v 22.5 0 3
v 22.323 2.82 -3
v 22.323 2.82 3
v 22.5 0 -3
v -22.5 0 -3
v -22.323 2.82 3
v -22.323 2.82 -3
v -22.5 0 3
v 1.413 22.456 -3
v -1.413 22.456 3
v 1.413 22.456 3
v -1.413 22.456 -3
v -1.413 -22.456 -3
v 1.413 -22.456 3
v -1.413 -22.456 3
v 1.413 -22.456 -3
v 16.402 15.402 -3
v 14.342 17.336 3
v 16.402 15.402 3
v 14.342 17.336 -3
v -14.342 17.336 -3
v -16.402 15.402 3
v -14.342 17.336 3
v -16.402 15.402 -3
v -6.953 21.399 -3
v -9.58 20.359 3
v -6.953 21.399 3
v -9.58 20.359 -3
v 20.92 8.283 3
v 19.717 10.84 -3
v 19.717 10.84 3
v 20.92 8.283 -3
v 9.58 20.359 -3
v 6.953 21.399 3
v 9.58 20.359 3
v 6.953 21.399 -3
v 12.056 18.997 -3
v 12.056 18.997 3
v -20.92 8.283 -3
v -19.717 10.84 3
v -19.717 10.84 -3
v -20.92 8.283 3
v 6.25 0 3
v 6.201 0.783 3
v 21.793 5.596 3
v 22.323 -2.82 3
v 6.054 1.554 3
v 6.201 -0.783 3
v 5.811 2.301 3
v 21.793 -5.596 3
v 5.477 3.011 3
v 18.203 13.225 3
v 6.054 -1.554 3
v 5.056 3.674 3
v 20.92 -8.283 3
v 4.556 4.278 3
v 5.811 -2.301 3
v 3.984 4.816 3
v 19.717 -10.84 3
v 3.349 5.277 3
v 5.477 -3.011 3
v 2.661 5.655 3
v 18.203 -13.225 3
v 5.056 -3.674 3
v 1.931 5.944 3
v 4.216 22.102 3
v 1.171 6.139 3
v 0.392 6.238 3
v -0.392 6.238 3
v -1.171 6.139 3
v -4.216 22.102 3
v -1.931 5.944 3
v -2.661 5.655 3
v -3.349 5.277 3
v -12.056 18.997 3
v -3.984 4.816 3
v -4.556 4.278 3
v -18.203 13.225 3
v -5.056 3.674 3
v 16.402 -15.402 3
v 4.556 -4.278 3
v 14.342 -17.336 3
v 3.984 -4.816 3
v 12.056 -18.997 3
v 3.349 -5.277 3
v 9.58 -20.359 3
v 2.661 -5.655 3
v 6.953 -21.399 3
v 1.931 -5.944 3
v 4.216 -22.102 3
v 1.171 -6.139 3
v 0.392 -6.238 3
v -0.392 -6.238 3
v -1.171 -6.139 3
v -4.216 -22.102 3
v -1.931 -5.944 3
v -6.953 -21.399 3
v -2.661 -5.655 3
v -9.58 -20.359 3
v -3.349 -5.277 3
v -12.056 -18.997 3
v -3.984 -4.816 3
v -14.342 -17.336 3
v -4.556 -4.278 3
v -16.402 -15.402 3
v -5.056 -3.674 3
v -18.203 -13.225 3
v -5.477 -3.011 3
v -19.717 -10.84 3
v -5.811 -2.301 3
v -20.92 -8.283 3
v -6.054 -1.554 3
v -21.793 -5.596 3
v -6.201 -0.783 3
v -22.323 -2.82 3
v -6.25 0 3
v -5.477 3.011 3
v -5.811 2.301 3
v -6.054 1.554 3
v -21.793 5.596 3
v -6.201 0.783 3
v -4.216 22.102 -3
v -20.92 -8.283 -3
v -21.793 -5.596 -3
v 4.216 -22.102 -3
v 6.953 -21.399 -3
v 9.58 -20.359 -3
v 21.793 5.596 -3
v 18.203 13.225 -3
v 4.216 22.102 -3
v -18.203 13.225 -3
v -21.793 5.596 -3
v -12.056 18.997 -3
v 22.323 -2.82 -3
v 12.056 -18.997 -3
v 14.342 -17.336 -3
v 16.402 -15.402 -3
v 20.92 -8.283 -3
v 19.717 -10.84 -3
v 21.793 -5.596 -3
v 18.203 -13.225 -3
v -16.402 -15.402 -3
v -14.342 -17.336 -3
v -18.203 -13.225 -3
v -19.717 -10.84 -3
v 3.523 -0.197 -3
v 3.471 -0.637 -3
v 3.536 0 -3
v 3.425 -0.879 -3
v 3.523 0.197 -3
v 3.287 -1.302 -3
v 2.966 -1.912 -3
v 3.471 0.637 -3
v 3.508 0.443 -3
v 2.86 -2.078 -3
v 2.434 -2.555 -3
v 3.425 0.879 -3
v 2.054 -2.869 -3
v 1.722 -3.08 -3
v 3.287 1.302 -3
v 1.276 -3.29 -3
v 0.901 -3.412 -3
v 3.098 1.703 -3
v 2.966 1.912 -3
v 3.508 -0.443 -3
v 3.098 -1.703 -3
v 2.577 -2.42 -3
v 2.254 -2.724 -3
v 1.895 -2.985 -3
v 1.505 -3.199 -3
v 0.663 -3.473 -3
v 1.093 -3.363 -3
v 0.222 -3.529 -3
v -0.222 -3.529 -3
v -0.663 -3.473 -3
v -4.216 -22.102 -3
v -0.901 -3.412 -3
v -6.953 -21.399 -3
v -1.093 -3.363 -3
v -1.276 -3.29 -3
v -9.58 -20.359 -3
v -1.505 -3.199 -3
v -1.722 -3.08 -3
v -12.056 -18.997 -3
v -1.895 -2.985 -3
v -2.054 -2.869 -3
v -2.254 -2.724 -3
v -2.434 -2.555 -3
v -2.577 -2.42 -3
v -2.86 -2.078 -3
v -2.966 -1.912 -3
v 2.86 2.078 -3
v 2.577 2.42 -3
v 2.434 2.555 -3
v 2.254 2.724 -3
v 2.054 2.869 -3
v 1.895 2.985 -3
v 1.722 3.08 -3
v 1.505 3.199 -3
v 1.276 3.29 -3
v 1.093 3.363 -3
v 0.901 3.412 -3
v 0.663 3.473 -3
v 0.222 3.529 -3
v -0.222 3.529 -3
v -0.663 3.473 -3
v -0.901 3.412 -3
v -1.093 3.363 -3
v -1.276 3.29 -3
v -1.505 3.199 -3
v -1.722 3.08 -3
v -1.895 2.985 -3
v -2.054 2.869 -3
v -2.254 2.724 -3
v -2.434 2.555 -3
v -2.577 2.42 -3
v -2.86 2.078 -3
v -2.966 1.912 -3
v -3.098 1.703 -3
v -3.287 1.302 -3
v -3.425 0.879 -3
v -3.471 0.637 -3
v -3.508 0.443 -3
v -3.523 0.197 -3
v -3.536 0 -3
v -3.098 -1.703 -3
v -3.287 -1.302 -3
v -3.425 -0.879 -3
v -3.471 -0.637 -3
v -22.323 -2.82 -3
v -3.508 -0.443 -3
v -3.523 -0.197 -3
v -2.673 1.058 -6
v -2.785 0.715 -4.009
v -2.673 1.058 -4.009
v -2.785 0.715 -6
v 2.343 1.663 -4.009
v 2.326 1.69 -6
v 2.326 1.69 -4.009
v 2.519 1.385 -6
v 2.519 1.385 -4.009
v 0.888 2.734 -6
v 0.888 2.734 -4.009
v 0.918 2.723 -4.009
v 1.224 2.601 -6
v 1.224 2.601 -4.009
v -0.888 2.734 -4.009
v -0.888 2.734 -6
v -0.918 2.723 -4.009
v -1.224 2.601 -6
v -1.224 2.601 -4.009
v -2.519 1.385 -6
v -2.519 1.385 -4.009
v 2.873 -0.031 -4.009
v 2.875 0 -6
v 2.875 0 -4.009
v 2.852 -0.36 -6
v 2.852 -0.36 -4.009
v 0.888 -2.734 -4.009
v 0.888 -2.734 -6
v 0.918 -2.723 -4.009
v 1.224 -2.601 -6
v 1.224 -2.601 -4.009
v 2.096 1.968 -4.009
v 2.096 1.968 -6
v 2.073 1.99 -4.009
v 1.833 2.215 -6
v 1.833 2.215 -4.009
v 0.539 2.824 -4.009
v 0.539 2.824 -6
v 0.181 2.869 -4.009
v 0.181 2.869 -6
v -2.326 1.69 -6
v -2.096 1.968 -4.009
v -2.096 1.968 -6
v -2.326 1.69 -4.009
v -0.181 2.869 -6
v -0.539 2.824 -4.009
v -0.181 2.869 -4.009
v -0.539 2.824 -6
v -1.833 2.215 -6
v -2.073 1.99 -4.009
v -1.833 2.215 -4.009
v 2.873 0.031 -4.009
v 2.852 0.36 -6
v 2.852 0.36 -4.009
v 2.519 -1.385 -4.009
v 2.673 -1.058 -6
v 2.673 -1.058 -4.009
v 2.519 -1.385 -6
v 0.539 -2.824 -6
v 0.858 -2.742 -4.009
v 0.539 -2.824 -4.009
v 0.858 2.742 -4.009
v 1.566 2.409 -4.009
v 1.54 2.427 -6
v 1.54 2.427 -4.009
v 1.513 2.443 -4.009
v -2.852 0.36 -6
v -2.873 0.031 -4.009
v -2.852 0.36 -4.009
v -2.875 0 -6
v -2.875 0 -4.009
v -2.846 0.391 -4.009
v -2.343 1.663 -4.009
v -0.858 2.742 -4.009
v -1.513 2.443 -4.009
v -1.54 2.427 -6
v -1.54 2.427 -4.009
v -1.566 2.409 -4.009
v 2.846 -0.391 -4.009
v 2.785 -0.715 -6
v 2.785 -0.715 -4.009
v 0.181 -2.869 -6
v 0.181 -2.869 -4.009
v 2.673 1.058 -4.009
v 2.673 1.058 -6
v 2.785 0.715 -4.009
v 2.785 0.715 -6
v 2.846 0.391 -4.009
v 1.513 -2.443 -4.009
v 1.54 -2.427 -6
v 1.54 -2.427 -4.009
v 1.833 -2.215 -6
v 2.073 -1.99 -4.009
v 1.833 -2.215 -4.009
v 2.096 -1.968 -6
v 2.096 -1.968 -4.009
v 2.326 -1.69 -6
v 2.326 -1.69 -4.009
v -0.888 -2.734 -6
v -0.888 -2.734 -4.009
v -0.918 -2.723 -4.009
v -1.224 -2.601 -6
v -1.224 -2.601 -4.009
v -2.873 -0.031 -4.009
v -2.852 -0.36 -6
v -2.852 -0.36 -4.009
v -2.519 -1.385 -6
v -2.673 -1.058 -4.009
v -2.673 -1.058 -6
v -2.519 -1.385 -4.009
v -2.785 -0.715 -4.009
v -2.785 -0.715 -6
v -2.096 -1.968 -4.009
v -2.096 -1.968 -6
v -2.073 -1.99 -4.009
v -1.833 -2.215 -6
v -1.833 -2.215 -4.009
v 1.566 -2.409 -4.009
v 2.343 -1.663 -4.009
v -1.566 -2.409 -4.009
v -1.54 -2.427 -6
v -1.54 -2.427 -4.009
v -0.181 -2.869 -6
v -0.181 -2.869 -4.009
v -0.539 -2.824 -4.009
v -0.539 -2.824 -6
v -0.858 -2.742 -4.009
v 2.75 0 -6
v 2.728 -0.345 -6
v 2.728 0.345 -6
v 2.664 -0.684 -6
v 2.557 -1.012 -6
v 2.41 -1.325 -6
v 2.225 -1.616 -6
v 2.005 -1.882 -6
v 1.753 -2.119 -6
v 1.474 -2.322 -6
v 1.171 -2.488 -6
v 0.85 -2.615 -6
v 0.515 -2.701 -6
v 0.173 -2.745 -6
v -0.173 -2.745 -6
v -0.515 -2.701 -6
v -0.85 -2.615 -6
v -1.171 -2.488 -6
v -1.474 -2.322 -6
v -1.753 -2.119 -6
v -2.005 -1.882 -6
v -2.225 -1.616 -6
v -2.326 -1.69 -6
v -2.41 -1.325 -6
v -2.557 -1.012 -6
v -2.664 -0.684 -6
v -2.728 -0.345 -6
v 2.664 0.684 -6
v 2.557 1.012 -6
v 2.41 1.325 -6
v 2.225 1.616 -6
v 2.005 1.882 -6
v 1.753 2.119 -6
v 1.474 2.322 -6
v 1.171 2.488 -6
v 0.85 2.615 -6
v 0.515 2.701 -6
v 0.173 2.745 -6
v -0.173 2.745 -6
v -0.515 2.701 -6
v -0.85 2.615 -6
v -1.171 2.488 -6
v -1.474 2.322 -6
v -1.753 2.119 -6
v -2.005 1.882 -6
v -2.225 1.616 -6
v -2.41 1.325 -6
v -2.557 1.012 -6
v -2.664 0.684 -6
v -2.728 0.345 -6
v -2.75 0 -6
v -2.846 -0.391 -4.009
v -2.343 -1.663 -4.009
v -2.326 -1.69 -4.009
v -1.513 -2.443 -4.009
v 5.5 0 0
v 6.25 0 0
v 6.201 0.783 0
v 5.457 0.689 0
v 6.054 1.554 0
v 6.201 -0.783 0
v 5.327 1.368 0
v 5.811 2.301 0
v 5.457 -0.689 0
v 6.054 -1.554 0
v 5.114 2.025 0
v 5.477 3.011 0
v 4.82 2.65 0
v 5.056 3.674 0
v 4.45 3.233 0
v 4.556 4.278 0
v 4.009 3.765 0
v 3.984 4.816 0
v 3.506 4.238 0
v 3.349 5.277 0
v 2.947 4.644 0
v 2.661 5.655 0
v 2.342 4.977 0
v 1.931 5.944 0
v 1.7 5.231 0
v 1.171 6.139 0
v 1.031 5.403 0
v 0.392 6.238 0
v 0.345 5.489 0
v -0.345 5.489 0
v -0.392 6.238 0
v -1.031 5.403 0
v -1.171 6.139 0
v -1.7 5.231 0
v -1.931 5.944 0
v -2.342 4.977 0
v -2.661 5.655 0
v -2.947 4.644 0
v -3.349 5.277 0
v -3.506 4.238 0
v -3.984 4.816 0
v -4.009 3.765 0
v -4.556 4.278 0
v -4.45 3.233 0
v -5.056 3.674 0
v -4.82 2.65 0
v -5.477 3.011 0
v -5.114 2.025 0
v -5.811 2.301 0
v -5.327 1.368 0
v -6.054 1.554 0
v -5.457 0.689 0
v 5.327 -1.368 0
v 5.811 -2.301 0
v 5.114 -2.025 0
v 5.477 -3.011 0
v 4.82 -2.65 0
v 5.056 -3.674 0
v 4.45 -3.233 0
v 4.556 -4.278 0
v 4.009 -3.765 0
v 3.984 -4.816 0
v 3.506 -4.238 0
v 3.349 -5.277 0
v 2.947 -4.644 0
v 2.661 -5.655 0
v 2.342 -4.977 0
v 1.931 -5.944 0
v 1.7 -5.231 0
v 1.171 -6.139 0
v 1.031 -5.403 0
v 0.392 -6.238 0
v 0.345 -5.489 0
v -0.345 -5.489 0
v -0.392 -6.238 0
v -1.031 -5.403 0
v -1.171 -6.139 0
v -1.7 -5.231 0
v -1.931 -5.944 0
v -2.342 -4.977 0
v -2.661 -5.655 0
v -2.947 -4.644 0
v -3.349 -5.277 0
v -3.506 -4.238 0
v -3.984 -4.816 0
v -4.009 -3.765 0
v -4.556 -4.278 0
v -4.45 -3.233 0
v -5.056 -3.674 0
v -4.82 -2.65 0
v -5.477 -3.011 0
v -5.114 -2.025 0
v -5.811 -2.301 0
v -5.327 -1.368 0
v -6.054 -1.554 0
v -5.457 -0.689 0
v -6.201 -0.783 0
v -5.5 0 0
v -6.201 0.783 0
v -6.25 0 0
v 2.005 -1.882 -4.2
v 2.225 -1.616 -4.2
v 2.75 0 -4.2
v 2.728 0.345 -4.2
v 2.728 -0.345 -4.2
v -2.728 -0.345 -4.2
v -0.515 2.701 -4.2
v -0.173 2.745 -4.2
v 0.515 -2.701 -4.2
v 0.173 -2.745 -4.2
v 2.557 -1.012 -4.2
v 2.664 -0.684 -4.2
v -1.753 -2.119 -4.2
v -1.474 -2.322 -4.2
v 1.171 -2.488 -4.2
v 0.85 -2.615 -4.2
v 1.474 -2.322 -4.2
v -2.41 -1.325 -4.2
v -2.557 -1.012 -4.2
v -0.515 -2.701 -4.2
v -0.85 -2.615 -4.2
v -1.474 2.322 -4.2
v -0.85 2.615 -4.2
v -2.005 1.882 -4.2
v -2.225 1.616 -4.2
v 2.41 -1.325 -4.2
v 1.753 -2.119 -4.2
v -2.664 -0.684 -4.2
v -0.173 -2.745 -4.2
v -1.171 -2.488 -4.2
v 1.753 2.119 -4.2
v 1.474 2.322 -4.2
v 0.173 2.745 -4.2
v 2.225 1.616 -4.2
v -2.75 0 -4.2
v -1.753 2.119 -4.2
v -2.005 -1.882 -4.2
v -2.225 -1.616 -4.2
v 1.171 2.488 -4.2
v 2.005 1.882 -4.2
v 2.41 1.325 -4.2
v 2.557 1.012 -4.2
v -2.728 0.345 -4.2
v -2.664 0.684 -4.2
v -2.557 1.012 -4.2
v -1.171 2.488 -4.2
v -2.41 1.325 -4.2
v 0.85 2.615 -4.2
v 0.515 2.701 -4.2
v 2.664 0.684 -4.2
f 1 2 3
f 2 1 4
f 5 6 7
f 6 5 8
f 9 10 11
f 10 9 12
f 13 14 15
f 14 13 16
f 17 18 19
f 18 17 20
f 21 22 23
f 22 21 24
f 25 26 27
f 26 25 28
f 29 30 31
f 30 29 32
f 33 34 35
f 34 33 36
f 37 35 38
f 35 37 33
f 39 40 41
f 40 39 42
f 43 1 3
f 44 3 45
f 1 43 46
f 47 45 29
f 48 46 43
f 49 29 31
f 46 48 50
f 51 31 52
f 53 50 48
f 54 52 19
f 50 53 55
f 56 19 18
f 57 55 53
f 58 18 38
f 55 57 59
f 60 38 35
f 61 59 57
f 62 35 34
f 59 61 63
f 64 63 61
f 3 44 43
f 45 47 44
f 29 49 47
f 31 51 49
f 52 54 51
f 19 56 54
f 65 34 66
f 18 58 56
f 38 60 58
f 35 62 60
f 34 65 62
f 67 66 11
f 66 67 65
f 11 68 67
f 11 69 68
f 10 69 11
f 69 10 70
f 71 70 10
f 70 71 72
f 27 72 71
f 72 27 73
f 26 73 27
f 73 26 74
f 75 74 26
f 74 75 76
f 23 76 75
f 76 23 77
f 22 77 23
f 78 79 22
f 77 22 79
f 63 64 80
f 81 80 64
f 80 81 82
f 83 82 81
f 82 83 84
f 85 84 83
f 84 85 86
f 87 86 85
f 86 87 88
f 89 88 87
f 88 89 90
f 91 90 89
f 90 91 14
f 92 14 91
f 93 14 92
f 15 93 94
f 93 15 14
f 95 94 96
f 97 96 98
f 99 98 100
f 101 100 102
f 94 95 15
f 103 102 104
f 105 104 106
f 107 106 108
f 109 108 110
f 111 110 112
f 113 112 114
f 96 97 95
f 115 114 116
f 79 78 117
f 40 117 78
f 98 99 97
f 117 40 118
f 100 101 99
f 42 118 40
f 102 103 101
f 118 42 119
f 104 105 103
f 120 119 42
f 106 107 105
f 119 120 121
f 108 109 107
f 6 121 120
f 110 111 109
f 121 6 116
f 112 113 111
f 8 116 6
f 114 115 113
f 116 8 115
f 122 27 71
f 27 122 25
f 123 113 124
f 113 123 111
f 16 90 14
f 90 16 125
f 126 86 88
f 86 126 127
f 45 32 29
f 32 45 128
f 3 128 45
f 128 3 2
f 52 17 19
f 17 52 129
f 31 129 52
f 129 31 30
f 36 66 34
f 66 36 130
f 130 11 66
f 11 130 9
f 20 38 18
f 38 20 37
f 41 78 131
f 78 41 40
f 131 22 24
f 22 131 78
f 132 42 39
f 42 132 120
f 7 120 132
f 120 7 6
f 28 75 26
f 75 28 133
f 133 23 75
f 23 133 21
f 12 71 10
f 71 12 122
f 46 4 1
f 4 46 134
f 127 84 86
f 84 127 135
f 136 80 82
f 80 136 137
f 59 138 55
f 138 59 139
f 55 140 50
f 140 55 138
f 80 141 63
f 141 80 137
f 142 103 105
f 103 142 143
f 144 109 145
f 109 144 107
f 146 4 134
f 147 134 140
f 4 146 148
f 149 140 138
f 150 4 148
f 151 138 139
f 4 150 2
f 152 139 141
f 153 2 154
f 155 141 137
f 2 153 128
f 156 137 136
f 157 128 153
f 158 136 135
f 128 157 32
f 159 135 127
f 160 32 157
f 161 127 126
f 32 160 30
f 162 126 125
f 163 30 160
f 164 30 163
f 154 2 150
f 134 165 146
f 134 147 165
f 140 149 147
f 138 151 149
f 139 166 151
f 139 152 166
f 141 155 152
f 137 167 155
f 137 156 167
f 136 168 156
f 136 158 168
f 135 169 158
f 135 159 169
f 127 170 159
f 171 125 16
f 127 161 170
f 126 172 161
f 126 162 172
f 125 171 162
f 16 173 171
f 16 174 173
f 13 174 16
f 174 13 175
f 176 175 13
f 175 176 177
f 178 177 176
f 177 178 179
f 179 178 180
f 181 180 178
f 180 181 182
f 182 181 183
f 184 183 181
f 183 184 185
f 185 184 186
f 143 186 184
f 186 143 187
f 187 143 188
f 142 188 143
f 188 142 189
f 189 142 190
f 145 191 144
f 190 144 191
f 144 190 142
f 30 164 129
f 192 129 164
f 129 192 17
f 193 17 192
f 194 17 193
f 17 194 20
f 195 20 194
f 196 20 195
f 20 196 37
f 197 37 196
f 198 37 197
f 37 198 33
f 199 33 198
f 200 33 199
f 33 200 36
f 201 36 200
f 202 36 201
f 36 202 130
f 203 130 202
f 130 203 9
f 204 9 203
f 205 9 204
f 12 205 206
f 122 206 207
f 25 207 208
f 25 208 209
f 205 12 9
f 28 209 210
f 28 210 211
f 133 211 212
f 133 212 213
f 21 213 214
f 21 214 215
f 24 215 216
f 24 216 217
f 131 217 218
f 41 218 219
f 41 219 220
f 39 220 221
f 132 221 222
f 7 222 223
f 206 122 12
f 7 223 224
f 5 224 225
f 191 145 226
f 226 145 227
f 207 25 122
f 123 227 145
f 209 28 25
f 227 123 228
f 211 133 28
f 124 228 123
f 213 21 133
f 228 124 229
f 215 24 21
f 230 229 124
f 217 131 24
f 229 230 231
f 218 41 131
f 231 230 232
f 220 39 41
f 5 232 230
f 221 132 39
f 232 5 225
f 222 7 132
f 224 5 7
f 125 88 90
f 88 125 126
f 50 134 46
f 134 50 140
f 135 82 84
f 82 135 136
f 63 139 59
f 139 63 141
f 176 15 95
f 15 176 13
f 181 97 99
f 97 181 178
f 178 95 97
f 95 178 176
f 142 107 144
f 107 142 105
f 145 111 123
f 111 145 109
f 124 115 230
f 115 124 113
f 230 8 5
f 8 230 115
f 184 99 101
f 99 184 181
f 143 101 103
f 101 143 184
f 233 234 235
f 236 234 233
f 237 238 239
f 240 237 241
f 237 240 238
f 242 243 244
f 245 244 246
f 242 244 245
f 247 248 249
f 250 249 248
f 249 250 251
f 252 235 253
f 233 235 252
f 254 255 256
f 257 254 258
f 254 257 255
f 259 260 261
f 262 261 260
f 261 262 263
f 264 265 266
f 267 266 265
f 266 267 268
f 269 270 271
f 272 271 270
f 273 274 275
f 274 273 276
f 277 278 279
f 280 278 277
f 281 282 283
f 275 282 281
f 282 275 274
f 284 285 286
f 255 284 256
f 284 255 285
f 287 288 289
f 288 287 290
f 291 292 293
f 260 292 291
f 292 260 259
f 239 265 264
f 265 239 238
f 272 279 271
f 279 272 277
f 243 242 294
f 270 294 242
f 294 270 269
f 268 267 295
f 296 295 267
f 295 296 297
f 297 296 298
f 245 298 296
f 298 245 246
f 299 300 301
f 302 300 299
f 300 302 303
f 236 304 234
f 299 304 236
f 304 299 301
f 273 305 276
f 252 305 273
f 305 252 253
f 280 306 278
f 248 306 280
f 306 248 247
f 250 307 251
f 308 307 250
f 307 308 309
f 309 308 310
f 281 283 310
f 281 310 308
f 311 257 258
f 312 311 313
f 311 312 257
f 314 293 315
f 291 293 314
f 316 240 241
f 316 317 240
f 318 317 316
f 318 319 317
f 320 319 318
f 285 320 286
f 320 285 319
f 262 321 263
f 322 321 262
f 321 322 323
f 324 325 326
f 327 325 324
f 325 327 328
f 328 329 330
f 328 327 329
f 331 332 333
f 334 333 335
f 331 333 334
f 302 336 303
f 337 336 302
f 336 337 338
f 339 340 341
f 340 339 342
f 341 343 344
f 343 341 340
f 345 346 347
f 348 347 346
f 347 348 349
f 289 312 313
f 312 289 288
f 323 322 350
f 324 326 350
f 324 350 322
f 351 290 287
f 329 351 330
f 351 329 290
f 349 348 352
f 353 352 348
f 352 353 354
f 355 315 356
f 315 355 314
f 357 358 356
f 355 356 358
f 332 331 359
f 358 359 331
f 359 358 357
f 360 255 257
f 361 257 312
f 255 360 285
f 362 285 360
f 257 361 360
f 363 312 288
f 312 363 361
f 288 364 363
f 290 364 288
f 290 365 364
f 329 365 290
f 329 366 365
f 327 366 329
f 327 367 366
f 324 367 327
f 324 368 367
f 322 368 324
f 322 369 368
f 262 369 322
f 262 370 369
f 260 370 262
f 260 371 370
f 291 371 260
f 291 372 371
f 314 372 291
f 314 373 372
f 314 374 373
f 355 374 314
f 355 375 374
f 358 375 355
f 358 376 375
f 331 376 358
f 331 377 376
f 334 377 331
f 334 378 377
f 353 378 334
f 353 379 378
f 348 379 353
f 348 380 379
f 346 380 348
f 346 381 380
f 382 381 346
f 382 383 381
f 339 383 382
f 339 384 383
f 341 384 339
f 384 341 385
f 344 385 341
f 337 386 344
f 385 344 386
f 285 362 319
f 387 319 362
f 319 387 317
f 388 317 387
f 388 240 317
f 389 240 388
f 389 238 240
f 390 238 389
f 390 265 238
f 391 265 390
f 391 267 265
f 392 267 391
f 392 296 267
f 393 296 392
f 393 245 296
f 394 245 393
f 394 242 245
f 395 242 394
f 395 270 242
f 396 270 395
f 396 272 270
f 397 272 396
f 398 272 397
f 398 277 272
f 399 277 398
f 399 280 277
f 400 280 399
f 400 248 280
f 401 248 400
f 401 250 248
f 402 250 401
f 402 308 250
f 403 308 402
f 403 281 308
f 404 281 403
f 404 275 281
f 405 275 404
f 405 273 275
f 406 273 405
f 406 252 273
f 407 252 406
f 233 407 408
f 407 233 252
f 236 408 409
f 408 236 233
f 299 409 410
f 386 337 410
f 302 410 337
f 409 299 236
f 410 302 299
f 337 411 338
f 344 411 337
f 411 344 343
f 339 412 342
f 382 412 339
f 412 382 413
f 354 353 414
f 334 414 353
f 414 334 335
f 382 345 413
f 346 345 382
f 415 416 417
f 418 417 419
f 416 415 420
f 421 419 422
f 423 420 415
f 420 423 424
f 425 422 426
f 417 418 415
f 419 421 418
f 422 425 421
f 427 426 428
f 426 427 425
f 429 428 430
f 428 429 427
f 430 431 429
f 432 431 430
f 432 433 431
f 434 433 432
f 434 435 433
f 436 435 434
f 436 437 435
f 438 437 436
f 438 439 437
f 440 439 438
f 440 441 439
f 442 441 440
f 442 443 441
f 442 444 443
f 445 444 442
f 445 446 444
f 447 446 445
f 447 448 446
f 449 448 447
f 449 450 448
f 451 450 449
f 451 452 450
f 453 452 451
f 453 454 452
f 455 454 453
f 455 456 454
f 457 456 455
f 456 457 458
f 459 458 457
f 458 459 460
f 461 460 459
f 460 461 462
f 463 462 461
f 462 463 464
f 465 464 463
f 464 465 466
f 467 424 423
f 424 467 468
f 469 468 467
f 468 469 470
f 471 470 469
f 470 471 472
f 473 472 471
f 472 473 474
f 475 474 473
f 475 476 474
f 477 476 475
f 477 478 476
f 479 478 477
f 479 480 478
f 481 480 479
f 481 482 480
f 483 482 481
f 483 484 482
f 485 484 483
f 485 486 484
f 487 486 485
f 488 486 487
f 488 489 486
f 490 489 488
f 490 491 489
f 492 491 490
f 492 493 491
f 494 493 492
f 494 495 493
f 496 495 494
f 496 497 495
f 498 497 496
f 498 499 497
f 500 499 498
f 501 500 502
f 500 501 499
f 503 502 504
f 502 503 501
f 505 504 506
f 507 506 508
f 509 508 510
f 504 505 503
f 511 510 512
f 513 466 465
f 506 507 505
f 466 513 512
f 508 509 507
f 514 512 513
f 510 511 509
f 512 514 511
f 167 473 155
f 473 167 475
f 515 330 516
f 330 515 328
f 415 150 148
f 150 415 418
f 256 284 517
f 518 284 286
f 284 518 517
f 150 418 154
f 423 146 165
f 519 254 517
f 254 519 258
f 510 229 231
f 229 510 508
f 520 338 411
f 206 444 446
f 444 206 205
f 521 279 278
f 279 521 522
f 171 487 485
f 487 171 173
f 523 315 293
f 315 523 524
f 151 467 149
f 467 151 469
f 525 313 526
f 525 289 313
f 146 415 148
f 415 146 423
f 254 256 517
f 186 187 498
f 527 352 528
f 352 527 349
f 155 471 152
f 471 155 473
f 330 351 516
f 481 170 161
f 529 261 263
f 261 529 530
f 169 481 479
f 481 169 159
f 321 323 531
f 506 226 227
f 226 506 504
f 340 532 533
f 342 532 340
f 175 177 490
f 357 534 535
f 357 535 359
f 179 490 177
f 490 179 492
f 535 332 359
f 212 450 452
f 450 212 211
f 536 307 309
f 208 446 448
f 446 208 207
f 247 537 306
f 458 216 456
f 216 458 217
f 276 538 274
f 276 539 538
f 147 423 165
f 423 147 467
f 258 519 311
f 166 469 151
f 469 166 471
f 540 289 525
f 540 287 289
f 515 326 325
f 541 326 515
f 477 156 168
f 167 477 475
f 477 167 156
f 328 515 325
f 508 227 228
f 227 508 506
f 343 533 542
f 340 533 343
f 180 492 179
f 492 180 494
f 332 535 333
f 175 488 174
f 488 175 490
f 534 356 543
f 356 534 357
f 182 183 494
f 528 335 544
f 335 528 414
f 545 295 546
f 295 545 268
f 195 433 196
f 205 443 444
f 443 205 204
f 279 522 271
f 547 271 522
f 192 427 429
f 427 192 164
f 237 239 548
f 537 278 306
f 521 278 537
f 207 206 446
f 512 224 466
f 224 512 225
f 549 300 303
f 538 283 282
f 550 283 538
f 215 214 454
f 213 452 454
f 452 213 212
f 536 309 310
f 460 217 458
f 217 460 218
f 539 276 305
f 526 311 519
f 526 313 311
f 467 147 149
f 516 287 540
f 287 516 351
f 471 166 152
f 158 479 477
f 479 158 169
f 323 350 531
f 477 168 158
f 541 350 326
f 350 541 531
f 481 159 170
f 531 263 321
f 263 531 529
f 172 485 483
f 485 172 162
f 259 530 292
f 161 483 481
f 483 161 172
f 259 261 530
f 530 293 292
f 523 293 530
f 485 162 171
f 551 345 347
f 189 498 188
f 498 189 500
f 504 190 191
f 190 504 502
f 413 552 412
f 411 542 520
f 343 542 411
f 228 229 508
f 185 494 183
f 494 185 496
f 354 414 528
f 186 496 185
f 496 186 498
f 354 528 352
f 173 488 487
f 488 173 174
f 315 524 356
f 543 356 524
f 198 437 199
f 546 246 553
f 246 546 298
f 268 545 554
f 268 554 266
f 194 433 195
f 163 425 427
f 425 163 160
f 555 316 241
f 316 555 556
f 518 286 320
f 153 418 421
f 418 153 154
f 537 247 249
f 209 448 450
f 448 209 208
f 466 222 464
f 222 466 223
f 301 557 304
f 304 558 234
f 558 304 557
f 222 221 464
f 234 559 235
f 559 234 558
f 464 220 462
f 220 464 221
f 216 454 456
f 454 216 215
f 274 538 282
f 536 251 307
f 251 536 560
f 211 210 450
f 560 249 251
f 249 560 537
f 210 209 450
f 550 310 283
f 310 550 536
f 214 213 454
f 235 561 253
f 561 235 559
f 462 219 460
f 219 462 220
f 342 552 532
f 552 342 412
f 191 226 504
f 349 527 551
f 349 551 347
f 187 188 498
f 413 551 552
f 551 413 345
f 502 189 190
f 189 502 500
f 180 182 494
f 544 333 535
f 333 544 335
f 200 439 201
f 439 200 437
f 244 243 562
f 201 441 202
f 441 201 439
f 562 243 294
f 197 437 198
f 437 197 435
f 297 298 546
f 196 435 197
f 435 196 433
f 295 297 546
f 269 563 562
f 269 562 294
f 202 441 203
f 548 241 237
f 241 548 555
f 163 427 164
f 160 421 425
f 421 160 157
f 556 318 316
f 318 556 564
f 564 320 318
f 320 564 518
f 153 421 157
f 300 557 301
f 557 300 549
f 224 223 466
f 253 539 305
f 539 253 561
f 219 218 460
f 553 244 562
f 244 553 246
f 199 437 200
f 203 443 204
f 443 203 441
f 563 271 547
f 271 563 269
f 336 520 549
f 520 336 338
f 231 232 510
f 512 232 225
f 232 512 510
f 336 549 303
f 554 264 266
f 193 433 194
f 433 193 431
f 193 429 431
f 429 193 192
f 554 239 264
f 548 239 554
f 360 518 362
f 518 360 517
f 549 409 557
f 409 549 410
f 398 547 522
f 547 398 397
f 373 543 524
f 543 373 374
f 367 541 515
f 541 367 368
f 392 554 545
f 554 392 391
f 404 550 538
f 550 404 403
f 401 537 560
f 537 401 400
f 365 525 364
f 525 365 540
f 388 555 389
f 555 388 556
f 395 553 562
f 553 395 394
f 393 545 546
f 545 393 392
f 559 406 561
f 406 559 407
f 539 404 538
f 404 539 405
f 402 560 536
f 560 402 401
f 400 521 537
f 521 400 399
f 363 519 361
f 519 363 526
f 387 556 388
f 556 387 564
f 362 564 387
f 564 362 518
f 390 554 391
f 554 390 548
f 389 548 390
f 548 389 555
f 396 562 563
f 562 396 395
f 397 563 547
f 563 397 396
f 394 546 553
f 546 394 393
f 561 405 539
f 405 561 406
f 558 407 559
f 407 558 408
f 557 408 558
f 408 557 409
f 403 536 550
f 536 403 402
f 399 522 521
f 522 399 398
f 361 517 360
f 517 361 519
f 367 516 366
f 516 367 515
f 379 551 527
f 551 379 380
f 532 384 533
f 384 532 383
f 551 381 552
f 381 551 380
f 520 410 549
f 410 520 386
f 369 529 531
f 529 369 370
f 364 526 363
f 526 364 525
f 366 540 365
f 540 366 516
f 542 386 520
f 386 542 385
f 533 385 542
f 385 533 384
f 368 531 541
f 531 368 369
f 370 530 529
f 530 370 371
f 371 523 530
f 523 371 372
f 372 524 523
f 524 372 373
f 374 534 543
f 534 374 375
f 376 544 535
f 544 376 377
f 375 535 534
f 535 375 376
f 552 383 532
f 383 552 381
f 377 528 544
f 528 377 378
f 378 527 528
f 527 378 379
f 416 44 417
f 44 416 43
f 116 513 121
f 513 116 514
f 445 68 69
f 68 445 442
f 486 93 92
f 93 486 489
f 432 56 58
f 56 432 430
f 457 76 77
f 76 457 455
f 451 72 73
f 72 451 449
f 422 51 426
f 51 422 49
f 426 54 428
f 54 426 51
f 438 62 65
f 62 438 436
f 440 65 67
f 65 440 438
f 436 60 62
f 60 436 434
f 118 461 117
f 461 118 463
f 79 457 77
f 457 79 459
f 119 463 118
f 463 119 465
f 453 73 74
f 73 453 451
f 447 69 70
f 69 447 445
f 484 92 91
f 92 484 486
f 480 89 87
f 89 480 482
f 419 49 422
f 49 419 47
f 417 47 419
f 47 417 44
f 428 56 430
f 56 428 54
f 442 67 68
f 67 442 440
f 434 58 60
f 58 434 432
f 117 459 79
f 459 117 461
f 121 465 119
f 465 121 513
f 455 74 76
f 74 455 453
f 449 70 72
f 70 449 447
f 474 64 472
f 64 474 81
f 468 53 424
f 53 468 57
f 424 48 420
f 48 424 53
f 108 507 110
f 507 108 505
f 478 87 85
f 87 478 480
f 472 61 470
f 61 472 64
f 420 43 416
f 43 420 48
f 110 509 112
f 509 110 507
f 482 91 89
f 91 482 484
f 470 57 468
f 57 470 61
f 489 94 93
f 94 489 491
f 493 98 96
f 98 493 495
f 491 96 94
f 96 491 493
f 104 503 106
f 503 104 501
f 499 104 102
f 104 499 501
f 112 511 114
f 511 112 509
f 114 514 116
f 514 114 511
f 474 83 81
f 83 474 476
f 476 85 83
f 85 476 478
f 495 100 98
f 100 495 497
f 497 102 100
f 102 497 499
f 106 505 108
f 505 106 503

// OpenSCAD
$fn = 50;

difference() {
	union() {
		translate(v = [0, 0, -3.0]) {
			cylinder(h = 6, r = 22.5);
		}
		#translate(v = [0, 0, -6.0]) {
			cylinder(h = 6, r = 2.875);
		}
	}
	union() {
		translate(v = [0, 0, 0]) {
			rotate(a = [0, 0, 0]) {
				difference() {
					union() {
						translate(v = [0, 0, -6.0]) {
							cylinder(h = 6, r = 2.25);
						}
						translate(v = [0, 0, -4.2]) {
							cylinder(h = 4.2, r1 = 2.75, r2 = 5.5);
						}
						translate(v = [0, 0, -6.0]) {
							cylinder(h = 6, r = 2.75);
						}
						translate(v = [0, 0, -6.0]) {
							cylinder(h = 6, r = 2.25);
						}
					}
					union();
				}
			}
		}
		#cylinder(h = 3, r = 6.25);
	}
}
